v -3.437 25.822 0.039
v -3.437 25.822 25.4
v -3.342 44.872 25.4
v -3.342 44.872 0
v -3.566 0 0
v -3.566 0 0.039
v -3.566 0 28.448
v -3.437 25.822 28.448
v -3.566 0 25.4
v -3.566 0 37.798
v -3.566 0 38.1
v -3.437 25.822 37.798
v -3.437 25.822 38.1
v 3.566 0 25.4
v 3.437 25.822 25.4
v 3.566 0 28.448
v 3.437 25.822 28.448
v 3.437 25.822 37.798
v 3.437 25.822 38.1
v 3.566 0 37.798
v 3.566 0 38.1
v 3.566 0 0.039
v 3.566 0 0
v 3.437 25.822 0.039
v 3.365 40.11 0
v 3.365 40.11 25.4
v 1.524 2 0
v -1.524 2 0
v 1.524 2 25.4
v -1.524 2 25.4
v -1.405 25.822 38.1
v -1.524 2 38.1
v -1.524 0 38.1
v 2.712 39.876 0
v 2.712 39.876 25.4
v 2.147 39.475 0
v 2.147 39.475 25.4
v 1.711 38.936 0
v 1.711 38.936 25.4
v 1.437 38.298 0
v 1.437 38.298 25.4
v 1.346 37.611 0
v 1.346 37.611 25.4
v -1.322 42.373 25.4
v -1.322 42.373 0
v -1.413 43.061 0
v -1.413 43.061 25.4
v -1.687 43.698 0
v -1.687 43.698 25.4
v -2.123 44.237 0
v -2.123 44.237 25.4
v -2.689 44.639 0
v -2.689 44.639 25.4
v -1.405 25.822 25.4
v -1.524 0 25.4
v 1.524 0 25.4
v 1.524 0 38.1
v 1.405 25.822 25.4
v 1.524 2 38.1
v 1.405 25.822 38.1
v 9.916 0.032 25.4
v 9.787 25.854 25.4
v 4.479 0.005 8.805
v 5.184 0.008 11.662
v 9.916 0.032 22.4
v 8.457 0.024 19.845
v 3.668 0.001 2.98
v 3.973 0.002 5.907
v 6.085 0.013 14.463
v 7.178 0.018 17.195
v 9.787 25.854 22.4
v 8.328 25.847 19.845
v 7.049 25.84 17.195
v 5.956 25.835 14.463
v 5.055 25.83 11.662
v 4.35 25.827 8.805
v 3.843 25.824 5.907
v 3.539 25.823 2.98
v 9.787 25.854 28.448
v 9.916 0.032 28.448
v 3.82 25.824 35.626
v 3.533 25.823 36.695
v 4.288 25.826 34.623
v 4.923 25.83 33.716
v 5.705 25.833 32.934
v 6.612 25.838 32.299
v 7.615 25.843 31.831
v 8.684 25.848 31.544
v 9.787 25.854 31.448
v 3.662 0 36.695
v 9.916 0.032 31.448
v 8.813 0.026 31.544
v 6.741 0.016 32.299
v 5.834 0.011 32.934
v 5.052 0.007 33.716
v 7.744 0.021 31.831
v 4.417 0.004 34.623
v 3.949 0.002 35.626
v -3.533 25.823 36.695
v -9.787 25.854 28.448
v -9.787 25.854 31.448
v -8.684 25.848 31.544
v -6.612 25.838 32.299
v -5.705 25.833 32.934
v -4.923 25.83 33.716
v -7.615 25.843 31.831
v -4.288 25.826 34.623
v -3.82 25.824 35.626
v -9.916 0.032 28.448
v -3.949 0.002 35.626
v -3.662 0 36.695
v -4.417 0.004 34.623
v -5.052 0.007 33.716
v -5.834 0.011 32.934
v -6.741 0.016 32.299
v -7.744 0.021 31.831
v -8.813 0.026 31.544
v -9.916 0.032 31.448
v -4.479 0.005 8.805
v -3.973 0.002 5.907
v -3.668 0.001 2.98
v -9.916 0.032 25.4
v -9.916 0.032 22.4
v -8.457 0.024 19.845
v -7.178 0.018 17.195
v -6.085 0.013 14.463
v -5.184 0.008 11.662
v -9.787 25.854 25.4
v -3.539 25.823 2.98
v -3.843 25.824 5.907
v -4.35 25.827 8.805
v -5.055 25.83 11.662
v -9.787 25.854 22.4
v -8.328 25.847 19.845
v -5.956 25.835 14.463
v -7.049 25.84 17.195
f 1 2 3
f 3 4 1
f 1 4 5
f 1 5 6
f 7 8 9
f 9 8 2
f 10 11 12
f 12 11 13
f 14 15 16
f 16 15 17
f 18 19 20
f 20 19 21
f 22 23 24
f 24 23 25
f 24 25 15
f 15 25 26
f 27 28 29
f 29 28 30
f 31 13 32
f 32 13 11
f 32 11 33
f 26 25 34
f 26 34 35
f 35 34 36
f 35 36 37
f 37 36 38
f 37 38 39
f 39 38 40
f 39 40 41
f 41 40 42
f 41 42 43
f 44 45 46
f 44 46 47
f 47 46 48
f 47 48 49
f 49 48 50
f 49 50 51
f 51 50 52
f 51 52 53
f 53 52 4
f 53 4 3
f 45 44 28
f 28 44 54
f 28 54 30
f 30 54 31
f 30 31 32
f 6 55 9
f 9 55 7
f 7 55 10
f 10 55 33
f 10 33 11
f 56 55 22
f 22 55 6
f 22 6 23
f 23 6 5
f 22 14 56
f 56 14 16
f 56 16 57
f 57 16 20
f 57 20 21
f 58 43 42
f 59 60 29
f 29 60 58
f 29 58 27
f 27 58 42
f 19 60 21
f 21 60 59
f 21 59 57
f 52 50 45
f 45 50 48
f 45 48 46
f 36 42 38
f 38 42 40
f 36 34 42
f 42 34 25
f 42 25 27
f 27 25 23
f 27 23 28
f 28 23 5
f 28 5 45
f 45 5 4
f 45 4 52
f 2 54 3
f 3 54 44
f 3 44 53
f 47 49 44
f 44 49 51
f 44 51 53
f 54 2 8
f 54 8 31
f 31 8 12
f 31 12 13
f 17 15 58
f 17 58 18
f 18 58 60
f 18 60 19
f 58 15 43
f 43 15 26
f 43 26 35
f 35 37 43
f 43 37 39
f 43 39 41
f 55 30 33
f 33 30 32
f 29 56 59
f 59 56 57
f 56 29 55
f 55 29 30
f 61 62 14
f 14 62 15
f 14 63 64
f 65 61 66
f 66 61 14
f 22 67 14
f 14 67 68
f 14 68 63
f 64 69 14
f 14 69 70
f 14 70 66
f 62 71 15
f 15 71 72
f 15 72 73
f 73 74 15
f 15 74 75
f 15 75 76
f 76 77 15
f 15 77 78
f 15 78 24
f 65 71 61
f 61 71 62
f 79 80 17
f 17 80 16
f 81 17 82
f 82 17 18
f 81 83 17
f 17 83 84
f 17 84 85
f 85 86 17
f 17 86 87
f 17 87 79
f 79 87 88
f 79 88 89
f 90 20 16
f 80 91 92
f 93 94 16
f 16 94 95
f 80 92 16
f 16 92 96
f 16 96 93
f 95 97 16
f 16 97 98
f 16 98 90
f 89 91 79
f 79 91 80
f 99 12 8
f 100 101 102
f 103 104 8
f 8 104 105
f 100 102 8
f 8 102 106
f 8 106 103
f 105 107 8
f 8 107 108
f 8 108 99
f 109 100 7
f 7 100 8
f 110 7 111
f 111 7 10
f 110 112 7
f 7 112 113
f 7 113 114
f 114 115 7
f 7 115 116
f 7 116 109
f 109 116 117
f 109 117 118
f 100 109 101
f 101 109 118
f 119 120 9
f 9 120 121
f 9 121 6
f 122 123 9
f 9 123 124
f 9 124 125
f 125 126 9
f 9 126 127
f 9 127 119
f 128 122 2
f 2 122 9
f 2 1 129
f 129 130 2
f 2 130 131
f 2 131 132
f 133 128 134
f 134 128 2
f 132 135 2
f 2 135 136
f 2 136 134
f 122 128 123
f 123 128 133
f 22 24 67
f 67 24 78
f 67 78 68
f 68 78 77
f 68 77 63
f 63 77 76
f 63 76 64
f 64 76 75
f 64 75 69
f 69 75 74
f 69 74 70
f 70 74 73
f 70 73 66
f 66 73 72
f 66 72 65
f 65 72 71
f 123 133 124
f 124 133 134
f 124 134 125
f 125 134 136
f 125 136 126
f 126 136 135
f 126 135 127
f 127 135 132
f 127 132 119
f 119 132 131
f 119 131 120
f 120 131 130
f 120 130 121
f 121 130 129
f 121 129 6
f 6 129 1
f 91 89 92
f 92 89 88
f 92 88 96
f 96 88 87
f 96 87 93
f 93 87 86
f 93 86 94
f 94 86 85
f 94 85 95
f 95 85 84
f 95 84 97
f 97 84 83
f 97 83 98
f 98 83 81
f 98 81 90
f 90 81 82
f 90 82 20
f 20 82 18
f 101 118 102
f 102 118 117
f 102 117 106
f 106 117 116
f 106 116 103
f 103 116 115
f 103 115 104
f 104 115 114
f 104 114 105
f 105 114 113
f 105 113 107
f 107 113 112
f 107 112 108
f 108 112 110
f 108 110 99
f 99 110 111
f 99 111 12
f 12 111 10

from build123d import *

# Parameters (mm, degrees)
BOSS_EXTRUDE1_DEPTH = 38.1
FILLET1_R           = 2.54
SKETCH2_W           = 3.048
SKETCH2_H           = 2
SKETCH2_W_2         = 6.87382658
SKETCH2_H_2         = 19.05
CUT_EXTRUDE1_DEPTH  = 12.7
SKETCH3_W           = 3
SKETCH3_H           = 25.822446998
BOSS_EXTRUDE2_DEPTH = 6.35
SKETCH4_W           = 3
SKETCH4_H           = 25.822446998
BOSS_EXTRUDE4_DEPTH = 6.35
FILLET3_R           = 42.545
FILLET4_R           = 6.35


# Some blends are built 0.0001 mm under size
with BuildPart() as part:
    # Sketch1 → Boss-Extrude1 (new body)
    with BuildSketch(Plane.XY):
        Polygon((-1.3335, 40.099523747), (-3.3654746, 40.109683747), (-3.566025525, 0), (3.566025525, 0), (3.3654746, 40.109683747), (1.3335, 40.099523747), (1.524, 2), (-1.524, 2), align=None)
        Polygon((-1.3096875, 44.861964215), (-1.3335, 40.099523747), (-3.3654746, 40.109683747), (-3.3416621, 44.872124215), align=None)
    extrude(amount=BOSS_EXTRUDE1_DEPTH)

    # Fillet1
    # the kernel refuses this fillet: 2.54 mm, written as the material it takes off along each edge
    with BuildSketch(Plane(origin=(1.3335, 40.099523747, -6.221703947), x_dir=(0.005000000000000079, -0.999987499921874, 0), z_dir=(0, 0, 1))) as fillet1_piece_1:
        with BuildLine():
            CenterArc((2.488681579, 2.54), FILLET1_R, 191.536959033, 78.463040967)
            Line((0, 2.032), (-0.049773632, 2.02184))
            ThreePointArc((-0.049773632, 2.02184), (-0.0508, 1.016), (-0.0508, 0))
            Line((-0.0508, 0), (0, -0.0508))
            Line((0, -0.0508), (2.488681579, -0.0508))
            Line((2.488681579, -0.0508), (2.488681579, 0))
        make_face()
    extrude(amount=50.543407893, mode=Mode.SUBTRACT)
    with BuildSketch(Plane(origin=(-1.3096875, 44.861964215, -6.221703947), x_dir=(-0.005000000000000297, -0.999987499921874, 0), z_dir=(0, 0, 1))) as fillet1_piece_2:
        with BuildLine():
            CenterArc((2.488681579, -2.54), FILLET1_R, 90, 78.463040967)
            Line((0, -2.032), (-0.049773632, -2.02184))
            ThreePointArc((-0.049773632, -2.02184), (-0.0508, -1.016), (-0.0508, 0))
            Line((-0.0508, 0), (0, 0.0508))
            Line((0, 0.0508), (2.488681579, 0.0508))
            Line((2.488681579, 0.0508), (2.488681579, 0))
        make_face()
    extrude(amount=50.543407893, mode=Mode.SUBTRACT)

    # Sketch2 → Cut-Extrude1 (cut)
    with BuildSketch(Plane.XY.offset(38.1)):
        with Locations((0, 1)):
            Rectangle(SKETCH2_W, SKETCH2_H)
        with Locations((0, 35.347124215)):
            Rectangle(SKETCH2_W_2, SKETCH2_H_2)
    extrude(amount=-CUT_EXTRUDE1_DEPTH, mode=Mode.SUBTRACT)

    # Sketch3 → Boss-Extrude2 (add)
    with BuildSketch(Plane(origin=(3.565936375, 0.017829905, 0), x_dir=(0, 0, -1), z_dir=(0.9999874999218742, 0.004999999999999631, 0))):
        with Locations((-23.9, 12.893393371)):
            Rectangle(SKETCH3_W, SKETCH3_H)
        with Locations((-29.948, 12.893393371)):
            Rectangle(SKETCH3_W, SKETCH3_H)
    extrude(amount=BOSS_EXTRUDE2_DEPTH)

    # Sketch4 → Boss-Extrude4 (add)
    with BuildSketch(Plane(origin=(-3.565936375, 0.017829905, 0), x_dir=(0, 0, 1), z_dir=(-0.9999874999218742, 0.004999999999999631, 0))):
        with Locations((29.948, 12.893393371)):
            Rectangle(SKETCH4_W, SKETCH4_H)
        with Locations((23.9, 12.893393371)):
            Rectangle(SKETCH4_W, SKETCH4_H)
    extrude(amount=BOSS_EXTRUDE4_DEPTH)

    # Fillet3
    # the kernel refuses this fillet: 42.545 mm, written as the material it adds along each edge
    with BuildSketch(Plane(origin=(3.43691329, 25.822124215, 22.4), x_dir=(0, 0, -1), z_dir=(0.004999999999999631, -0.9999874999218742, 0))) as fillet3_piece_1:
        with BuildLine():
            CenterArc((22.360657414, 42.545), FILLET3_R, 238.292930672, 31.707069328)
            Line((0, 6.35), (0, 0))
            Line((0, 0), (22.360657414, 0))
        make_face()
    extrude(amount=25.822446998)
    with BuildSketch(Plane(origin=(-3.43691329, 25.822124215, 22.4), x_dir=(0, 0, -1), z_dir=(-0.004999999999999631, -0.9999874999218742, 0))) as fillet3_piece_2:
        with BuildLine():
            CenterArc((22.360657414, -42.545), FILLET3_R, 90, 31.707069328)
            Line((0, -6.35), (0, 0))
            Line((0, 0), (22.360657414, 0))
        make_face()
    extrude(amount=25.822446998)

    # Fillet4
    fillet4_edges = [part.edges().sort_by_distance(p)[0] for p in [
        (3.501469408, 12.911062108, 31.448),
        (-3.501469408, 12.911062108, 31.448),
    ]]
    fillet(fillet4_edges, radius=FILLET4_R - 0.0001)  # a hair under: the kernel refuses the full size


solid = part.part
